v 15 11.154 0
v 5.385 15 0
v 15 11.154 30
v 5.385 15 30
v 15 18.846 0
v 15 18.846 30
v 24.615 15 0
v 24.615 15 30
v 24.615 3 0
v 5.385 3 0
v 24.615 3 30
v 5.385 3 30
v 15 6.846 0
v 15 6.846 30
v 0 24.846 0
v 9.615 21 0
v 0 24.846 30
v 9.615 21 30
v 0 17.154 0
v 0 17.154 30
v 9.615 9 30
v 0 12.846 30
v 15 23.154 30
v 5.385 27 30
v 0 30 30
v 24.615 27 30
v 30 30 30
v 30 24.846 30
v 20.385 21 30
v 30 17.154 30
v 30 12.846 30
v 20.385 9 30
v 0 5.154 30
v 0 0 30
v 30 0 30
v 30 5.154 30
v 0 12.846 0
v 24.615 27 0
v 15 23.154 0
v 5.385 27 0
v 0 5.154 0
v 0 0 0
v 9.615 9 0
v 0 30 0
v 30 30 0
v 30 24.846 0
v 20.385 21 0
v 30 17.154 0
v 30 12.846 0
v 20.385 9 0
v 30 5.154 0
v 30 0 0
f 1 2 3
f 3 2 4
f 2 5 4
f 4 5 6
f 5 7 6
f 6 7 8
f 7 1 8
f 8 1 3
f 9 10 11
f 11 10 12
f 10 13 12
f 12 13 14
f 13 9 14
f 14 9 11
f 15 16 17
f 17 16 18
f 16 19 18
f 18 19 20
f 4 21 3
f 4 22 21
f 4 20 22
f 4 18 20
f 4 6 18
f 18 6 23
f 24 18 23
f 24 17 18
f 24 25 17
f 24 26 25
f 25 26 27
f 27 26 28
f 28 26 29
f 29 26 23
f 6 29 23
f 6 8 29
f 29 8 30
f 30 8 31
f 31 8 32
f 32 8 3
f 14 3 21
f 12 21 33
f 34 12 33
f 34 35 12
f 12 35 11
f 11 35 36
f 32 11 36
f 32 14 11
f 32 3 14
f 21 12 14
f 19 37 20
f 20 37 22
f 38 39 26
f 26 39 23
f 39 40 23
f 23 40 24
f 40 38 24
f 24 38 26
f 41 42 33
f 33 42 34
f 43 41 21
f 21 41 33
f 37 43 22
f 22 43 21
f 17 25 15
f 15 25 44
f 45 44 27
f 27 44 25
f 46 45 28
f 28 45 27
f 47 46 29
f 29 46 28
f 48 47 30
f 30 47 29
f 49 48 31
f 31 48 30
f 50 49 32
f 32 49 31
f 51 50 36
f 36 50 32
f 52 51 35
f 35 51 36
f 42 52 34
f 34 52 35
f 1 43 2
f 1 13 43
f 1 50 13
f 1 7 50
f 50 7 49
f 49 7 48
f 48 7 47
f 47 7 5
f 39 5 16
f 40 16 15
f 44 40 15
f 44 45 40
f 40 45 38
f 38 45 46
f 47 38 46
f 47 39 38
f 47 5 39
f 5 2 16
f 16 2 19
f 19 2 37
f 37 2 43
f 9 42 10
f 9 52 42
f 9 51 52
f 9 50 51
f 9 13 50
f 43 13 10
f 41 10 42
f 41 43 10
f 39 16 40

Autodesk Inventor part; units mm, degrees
ref_plane "YZ Plane" through (0, 0, 0) normal (1, 0, 0) x (0, 1, 0)
ref_plane "XZ Plane" through (0, 0, 0) normal (0, 1, 0) x (-1, 0, 0)
ref_plane "XY Plane" through (0, 0, 0) normal (0, 0, 1) x (1, 0, 0)
sketch "Sketch1" plane through (0, 0, 0) normal (0, 0, 1) x (1, 0, 0)
  line L0 (0, 0) -> (30, 0) construction
  line L1 (30, 0) -> (30, 30) construction
  line L2 (30, 30) -> (0, 30) construction
  line L3 (0, 30) -> (0, 0) construction
  line L4 (0, 0) -> (30, 0)
  line L5 (36.8144, 0) -> (36.8144, 3)
  line L6 (0, 3) -> (0, 0)
  line L7 (0, 30) -> (30, 30)
  line L8 (30, 30) -> (30, 27)
  line L9 (24.6148, 27) -> (5.3852, 27)
  line L10 (0, 27) -> (0, 30)
  line L11 (0, 15) -> (30, 15) construction
  line L12 (30, 27) -> (0, 15) construction
  line L13 (12.3074, 22.077) -> (30, 15) construction
  line L14 (30, 27) -> (30, 3)
  line L15 (0, 27) -> (0, 3)
  line L16 (24.6148, 27) -> (15, 23.1541)
  line L17 (9.6148, 21) -> (0, 17.1541)
  line L18 (30, 24.8459) -> (20.3852, 21)
  line L19 (5.3852, 27) -> (15, 23.1541)
  line L20 (20.3852, 21) -> (30, 17.1541)
  line L21 (0, 24.8459) -> (9.6148, 21)
  line L22 (20.3852, 9) -> (30, 5.1541)
  line L23 (0, 12.8459) -> (9.6148, 9)
  line L24 (15, 6.8459) -> (24.6148, 3)
  line L25 (24.6148, 15) -> (15, 11.1541)
  line L26 (9.6148, 9) -> (0, 5.1541)
  line L27 (0, 15) -> (15, 9) construction
  line L28 (17.6926, 7.923) -> (30, 3) construction
  line L29 (15, 18.8459) -> (5.3852, 15)
  line L30 (5.3852, 15) -> (15, 11.1541)
  line L31 (36.8144, 3) -> (35.3852, 3)
  line L32 (24.6148, 3) -> (5.3852, 3)
  line L33 (30, 0) -> (30, 3)
  line L34 (30, 15) -> (27.3074, 13.923) construction
  line L35 (15, 9) -> (0, 3) construction
  line L36 (15, 18.8459) -> (24.6148, 15)
  line L37 (30, 12.8459) -> (20.3852, 9)
  line L38 (17.6926, 7.923) -> (5.3852, 3)
  line L39 (0, 9) -> (0, 37.598)
  line L40 (0, 24.8459) -> (0, 17.1541)
  dimension "d0" = 30
  dimension "d1" = 30
  dimension "d2" = 3
  dimension "d3" = 3
extrude "Extrusion1" add sketch "Sketch1" along normal blind 30 contours L6 L15 L26 L23 L17 L21 L10 L7 L8 L14 L18 L20 L37 L22 L33 L4
properties part number "Jack"
